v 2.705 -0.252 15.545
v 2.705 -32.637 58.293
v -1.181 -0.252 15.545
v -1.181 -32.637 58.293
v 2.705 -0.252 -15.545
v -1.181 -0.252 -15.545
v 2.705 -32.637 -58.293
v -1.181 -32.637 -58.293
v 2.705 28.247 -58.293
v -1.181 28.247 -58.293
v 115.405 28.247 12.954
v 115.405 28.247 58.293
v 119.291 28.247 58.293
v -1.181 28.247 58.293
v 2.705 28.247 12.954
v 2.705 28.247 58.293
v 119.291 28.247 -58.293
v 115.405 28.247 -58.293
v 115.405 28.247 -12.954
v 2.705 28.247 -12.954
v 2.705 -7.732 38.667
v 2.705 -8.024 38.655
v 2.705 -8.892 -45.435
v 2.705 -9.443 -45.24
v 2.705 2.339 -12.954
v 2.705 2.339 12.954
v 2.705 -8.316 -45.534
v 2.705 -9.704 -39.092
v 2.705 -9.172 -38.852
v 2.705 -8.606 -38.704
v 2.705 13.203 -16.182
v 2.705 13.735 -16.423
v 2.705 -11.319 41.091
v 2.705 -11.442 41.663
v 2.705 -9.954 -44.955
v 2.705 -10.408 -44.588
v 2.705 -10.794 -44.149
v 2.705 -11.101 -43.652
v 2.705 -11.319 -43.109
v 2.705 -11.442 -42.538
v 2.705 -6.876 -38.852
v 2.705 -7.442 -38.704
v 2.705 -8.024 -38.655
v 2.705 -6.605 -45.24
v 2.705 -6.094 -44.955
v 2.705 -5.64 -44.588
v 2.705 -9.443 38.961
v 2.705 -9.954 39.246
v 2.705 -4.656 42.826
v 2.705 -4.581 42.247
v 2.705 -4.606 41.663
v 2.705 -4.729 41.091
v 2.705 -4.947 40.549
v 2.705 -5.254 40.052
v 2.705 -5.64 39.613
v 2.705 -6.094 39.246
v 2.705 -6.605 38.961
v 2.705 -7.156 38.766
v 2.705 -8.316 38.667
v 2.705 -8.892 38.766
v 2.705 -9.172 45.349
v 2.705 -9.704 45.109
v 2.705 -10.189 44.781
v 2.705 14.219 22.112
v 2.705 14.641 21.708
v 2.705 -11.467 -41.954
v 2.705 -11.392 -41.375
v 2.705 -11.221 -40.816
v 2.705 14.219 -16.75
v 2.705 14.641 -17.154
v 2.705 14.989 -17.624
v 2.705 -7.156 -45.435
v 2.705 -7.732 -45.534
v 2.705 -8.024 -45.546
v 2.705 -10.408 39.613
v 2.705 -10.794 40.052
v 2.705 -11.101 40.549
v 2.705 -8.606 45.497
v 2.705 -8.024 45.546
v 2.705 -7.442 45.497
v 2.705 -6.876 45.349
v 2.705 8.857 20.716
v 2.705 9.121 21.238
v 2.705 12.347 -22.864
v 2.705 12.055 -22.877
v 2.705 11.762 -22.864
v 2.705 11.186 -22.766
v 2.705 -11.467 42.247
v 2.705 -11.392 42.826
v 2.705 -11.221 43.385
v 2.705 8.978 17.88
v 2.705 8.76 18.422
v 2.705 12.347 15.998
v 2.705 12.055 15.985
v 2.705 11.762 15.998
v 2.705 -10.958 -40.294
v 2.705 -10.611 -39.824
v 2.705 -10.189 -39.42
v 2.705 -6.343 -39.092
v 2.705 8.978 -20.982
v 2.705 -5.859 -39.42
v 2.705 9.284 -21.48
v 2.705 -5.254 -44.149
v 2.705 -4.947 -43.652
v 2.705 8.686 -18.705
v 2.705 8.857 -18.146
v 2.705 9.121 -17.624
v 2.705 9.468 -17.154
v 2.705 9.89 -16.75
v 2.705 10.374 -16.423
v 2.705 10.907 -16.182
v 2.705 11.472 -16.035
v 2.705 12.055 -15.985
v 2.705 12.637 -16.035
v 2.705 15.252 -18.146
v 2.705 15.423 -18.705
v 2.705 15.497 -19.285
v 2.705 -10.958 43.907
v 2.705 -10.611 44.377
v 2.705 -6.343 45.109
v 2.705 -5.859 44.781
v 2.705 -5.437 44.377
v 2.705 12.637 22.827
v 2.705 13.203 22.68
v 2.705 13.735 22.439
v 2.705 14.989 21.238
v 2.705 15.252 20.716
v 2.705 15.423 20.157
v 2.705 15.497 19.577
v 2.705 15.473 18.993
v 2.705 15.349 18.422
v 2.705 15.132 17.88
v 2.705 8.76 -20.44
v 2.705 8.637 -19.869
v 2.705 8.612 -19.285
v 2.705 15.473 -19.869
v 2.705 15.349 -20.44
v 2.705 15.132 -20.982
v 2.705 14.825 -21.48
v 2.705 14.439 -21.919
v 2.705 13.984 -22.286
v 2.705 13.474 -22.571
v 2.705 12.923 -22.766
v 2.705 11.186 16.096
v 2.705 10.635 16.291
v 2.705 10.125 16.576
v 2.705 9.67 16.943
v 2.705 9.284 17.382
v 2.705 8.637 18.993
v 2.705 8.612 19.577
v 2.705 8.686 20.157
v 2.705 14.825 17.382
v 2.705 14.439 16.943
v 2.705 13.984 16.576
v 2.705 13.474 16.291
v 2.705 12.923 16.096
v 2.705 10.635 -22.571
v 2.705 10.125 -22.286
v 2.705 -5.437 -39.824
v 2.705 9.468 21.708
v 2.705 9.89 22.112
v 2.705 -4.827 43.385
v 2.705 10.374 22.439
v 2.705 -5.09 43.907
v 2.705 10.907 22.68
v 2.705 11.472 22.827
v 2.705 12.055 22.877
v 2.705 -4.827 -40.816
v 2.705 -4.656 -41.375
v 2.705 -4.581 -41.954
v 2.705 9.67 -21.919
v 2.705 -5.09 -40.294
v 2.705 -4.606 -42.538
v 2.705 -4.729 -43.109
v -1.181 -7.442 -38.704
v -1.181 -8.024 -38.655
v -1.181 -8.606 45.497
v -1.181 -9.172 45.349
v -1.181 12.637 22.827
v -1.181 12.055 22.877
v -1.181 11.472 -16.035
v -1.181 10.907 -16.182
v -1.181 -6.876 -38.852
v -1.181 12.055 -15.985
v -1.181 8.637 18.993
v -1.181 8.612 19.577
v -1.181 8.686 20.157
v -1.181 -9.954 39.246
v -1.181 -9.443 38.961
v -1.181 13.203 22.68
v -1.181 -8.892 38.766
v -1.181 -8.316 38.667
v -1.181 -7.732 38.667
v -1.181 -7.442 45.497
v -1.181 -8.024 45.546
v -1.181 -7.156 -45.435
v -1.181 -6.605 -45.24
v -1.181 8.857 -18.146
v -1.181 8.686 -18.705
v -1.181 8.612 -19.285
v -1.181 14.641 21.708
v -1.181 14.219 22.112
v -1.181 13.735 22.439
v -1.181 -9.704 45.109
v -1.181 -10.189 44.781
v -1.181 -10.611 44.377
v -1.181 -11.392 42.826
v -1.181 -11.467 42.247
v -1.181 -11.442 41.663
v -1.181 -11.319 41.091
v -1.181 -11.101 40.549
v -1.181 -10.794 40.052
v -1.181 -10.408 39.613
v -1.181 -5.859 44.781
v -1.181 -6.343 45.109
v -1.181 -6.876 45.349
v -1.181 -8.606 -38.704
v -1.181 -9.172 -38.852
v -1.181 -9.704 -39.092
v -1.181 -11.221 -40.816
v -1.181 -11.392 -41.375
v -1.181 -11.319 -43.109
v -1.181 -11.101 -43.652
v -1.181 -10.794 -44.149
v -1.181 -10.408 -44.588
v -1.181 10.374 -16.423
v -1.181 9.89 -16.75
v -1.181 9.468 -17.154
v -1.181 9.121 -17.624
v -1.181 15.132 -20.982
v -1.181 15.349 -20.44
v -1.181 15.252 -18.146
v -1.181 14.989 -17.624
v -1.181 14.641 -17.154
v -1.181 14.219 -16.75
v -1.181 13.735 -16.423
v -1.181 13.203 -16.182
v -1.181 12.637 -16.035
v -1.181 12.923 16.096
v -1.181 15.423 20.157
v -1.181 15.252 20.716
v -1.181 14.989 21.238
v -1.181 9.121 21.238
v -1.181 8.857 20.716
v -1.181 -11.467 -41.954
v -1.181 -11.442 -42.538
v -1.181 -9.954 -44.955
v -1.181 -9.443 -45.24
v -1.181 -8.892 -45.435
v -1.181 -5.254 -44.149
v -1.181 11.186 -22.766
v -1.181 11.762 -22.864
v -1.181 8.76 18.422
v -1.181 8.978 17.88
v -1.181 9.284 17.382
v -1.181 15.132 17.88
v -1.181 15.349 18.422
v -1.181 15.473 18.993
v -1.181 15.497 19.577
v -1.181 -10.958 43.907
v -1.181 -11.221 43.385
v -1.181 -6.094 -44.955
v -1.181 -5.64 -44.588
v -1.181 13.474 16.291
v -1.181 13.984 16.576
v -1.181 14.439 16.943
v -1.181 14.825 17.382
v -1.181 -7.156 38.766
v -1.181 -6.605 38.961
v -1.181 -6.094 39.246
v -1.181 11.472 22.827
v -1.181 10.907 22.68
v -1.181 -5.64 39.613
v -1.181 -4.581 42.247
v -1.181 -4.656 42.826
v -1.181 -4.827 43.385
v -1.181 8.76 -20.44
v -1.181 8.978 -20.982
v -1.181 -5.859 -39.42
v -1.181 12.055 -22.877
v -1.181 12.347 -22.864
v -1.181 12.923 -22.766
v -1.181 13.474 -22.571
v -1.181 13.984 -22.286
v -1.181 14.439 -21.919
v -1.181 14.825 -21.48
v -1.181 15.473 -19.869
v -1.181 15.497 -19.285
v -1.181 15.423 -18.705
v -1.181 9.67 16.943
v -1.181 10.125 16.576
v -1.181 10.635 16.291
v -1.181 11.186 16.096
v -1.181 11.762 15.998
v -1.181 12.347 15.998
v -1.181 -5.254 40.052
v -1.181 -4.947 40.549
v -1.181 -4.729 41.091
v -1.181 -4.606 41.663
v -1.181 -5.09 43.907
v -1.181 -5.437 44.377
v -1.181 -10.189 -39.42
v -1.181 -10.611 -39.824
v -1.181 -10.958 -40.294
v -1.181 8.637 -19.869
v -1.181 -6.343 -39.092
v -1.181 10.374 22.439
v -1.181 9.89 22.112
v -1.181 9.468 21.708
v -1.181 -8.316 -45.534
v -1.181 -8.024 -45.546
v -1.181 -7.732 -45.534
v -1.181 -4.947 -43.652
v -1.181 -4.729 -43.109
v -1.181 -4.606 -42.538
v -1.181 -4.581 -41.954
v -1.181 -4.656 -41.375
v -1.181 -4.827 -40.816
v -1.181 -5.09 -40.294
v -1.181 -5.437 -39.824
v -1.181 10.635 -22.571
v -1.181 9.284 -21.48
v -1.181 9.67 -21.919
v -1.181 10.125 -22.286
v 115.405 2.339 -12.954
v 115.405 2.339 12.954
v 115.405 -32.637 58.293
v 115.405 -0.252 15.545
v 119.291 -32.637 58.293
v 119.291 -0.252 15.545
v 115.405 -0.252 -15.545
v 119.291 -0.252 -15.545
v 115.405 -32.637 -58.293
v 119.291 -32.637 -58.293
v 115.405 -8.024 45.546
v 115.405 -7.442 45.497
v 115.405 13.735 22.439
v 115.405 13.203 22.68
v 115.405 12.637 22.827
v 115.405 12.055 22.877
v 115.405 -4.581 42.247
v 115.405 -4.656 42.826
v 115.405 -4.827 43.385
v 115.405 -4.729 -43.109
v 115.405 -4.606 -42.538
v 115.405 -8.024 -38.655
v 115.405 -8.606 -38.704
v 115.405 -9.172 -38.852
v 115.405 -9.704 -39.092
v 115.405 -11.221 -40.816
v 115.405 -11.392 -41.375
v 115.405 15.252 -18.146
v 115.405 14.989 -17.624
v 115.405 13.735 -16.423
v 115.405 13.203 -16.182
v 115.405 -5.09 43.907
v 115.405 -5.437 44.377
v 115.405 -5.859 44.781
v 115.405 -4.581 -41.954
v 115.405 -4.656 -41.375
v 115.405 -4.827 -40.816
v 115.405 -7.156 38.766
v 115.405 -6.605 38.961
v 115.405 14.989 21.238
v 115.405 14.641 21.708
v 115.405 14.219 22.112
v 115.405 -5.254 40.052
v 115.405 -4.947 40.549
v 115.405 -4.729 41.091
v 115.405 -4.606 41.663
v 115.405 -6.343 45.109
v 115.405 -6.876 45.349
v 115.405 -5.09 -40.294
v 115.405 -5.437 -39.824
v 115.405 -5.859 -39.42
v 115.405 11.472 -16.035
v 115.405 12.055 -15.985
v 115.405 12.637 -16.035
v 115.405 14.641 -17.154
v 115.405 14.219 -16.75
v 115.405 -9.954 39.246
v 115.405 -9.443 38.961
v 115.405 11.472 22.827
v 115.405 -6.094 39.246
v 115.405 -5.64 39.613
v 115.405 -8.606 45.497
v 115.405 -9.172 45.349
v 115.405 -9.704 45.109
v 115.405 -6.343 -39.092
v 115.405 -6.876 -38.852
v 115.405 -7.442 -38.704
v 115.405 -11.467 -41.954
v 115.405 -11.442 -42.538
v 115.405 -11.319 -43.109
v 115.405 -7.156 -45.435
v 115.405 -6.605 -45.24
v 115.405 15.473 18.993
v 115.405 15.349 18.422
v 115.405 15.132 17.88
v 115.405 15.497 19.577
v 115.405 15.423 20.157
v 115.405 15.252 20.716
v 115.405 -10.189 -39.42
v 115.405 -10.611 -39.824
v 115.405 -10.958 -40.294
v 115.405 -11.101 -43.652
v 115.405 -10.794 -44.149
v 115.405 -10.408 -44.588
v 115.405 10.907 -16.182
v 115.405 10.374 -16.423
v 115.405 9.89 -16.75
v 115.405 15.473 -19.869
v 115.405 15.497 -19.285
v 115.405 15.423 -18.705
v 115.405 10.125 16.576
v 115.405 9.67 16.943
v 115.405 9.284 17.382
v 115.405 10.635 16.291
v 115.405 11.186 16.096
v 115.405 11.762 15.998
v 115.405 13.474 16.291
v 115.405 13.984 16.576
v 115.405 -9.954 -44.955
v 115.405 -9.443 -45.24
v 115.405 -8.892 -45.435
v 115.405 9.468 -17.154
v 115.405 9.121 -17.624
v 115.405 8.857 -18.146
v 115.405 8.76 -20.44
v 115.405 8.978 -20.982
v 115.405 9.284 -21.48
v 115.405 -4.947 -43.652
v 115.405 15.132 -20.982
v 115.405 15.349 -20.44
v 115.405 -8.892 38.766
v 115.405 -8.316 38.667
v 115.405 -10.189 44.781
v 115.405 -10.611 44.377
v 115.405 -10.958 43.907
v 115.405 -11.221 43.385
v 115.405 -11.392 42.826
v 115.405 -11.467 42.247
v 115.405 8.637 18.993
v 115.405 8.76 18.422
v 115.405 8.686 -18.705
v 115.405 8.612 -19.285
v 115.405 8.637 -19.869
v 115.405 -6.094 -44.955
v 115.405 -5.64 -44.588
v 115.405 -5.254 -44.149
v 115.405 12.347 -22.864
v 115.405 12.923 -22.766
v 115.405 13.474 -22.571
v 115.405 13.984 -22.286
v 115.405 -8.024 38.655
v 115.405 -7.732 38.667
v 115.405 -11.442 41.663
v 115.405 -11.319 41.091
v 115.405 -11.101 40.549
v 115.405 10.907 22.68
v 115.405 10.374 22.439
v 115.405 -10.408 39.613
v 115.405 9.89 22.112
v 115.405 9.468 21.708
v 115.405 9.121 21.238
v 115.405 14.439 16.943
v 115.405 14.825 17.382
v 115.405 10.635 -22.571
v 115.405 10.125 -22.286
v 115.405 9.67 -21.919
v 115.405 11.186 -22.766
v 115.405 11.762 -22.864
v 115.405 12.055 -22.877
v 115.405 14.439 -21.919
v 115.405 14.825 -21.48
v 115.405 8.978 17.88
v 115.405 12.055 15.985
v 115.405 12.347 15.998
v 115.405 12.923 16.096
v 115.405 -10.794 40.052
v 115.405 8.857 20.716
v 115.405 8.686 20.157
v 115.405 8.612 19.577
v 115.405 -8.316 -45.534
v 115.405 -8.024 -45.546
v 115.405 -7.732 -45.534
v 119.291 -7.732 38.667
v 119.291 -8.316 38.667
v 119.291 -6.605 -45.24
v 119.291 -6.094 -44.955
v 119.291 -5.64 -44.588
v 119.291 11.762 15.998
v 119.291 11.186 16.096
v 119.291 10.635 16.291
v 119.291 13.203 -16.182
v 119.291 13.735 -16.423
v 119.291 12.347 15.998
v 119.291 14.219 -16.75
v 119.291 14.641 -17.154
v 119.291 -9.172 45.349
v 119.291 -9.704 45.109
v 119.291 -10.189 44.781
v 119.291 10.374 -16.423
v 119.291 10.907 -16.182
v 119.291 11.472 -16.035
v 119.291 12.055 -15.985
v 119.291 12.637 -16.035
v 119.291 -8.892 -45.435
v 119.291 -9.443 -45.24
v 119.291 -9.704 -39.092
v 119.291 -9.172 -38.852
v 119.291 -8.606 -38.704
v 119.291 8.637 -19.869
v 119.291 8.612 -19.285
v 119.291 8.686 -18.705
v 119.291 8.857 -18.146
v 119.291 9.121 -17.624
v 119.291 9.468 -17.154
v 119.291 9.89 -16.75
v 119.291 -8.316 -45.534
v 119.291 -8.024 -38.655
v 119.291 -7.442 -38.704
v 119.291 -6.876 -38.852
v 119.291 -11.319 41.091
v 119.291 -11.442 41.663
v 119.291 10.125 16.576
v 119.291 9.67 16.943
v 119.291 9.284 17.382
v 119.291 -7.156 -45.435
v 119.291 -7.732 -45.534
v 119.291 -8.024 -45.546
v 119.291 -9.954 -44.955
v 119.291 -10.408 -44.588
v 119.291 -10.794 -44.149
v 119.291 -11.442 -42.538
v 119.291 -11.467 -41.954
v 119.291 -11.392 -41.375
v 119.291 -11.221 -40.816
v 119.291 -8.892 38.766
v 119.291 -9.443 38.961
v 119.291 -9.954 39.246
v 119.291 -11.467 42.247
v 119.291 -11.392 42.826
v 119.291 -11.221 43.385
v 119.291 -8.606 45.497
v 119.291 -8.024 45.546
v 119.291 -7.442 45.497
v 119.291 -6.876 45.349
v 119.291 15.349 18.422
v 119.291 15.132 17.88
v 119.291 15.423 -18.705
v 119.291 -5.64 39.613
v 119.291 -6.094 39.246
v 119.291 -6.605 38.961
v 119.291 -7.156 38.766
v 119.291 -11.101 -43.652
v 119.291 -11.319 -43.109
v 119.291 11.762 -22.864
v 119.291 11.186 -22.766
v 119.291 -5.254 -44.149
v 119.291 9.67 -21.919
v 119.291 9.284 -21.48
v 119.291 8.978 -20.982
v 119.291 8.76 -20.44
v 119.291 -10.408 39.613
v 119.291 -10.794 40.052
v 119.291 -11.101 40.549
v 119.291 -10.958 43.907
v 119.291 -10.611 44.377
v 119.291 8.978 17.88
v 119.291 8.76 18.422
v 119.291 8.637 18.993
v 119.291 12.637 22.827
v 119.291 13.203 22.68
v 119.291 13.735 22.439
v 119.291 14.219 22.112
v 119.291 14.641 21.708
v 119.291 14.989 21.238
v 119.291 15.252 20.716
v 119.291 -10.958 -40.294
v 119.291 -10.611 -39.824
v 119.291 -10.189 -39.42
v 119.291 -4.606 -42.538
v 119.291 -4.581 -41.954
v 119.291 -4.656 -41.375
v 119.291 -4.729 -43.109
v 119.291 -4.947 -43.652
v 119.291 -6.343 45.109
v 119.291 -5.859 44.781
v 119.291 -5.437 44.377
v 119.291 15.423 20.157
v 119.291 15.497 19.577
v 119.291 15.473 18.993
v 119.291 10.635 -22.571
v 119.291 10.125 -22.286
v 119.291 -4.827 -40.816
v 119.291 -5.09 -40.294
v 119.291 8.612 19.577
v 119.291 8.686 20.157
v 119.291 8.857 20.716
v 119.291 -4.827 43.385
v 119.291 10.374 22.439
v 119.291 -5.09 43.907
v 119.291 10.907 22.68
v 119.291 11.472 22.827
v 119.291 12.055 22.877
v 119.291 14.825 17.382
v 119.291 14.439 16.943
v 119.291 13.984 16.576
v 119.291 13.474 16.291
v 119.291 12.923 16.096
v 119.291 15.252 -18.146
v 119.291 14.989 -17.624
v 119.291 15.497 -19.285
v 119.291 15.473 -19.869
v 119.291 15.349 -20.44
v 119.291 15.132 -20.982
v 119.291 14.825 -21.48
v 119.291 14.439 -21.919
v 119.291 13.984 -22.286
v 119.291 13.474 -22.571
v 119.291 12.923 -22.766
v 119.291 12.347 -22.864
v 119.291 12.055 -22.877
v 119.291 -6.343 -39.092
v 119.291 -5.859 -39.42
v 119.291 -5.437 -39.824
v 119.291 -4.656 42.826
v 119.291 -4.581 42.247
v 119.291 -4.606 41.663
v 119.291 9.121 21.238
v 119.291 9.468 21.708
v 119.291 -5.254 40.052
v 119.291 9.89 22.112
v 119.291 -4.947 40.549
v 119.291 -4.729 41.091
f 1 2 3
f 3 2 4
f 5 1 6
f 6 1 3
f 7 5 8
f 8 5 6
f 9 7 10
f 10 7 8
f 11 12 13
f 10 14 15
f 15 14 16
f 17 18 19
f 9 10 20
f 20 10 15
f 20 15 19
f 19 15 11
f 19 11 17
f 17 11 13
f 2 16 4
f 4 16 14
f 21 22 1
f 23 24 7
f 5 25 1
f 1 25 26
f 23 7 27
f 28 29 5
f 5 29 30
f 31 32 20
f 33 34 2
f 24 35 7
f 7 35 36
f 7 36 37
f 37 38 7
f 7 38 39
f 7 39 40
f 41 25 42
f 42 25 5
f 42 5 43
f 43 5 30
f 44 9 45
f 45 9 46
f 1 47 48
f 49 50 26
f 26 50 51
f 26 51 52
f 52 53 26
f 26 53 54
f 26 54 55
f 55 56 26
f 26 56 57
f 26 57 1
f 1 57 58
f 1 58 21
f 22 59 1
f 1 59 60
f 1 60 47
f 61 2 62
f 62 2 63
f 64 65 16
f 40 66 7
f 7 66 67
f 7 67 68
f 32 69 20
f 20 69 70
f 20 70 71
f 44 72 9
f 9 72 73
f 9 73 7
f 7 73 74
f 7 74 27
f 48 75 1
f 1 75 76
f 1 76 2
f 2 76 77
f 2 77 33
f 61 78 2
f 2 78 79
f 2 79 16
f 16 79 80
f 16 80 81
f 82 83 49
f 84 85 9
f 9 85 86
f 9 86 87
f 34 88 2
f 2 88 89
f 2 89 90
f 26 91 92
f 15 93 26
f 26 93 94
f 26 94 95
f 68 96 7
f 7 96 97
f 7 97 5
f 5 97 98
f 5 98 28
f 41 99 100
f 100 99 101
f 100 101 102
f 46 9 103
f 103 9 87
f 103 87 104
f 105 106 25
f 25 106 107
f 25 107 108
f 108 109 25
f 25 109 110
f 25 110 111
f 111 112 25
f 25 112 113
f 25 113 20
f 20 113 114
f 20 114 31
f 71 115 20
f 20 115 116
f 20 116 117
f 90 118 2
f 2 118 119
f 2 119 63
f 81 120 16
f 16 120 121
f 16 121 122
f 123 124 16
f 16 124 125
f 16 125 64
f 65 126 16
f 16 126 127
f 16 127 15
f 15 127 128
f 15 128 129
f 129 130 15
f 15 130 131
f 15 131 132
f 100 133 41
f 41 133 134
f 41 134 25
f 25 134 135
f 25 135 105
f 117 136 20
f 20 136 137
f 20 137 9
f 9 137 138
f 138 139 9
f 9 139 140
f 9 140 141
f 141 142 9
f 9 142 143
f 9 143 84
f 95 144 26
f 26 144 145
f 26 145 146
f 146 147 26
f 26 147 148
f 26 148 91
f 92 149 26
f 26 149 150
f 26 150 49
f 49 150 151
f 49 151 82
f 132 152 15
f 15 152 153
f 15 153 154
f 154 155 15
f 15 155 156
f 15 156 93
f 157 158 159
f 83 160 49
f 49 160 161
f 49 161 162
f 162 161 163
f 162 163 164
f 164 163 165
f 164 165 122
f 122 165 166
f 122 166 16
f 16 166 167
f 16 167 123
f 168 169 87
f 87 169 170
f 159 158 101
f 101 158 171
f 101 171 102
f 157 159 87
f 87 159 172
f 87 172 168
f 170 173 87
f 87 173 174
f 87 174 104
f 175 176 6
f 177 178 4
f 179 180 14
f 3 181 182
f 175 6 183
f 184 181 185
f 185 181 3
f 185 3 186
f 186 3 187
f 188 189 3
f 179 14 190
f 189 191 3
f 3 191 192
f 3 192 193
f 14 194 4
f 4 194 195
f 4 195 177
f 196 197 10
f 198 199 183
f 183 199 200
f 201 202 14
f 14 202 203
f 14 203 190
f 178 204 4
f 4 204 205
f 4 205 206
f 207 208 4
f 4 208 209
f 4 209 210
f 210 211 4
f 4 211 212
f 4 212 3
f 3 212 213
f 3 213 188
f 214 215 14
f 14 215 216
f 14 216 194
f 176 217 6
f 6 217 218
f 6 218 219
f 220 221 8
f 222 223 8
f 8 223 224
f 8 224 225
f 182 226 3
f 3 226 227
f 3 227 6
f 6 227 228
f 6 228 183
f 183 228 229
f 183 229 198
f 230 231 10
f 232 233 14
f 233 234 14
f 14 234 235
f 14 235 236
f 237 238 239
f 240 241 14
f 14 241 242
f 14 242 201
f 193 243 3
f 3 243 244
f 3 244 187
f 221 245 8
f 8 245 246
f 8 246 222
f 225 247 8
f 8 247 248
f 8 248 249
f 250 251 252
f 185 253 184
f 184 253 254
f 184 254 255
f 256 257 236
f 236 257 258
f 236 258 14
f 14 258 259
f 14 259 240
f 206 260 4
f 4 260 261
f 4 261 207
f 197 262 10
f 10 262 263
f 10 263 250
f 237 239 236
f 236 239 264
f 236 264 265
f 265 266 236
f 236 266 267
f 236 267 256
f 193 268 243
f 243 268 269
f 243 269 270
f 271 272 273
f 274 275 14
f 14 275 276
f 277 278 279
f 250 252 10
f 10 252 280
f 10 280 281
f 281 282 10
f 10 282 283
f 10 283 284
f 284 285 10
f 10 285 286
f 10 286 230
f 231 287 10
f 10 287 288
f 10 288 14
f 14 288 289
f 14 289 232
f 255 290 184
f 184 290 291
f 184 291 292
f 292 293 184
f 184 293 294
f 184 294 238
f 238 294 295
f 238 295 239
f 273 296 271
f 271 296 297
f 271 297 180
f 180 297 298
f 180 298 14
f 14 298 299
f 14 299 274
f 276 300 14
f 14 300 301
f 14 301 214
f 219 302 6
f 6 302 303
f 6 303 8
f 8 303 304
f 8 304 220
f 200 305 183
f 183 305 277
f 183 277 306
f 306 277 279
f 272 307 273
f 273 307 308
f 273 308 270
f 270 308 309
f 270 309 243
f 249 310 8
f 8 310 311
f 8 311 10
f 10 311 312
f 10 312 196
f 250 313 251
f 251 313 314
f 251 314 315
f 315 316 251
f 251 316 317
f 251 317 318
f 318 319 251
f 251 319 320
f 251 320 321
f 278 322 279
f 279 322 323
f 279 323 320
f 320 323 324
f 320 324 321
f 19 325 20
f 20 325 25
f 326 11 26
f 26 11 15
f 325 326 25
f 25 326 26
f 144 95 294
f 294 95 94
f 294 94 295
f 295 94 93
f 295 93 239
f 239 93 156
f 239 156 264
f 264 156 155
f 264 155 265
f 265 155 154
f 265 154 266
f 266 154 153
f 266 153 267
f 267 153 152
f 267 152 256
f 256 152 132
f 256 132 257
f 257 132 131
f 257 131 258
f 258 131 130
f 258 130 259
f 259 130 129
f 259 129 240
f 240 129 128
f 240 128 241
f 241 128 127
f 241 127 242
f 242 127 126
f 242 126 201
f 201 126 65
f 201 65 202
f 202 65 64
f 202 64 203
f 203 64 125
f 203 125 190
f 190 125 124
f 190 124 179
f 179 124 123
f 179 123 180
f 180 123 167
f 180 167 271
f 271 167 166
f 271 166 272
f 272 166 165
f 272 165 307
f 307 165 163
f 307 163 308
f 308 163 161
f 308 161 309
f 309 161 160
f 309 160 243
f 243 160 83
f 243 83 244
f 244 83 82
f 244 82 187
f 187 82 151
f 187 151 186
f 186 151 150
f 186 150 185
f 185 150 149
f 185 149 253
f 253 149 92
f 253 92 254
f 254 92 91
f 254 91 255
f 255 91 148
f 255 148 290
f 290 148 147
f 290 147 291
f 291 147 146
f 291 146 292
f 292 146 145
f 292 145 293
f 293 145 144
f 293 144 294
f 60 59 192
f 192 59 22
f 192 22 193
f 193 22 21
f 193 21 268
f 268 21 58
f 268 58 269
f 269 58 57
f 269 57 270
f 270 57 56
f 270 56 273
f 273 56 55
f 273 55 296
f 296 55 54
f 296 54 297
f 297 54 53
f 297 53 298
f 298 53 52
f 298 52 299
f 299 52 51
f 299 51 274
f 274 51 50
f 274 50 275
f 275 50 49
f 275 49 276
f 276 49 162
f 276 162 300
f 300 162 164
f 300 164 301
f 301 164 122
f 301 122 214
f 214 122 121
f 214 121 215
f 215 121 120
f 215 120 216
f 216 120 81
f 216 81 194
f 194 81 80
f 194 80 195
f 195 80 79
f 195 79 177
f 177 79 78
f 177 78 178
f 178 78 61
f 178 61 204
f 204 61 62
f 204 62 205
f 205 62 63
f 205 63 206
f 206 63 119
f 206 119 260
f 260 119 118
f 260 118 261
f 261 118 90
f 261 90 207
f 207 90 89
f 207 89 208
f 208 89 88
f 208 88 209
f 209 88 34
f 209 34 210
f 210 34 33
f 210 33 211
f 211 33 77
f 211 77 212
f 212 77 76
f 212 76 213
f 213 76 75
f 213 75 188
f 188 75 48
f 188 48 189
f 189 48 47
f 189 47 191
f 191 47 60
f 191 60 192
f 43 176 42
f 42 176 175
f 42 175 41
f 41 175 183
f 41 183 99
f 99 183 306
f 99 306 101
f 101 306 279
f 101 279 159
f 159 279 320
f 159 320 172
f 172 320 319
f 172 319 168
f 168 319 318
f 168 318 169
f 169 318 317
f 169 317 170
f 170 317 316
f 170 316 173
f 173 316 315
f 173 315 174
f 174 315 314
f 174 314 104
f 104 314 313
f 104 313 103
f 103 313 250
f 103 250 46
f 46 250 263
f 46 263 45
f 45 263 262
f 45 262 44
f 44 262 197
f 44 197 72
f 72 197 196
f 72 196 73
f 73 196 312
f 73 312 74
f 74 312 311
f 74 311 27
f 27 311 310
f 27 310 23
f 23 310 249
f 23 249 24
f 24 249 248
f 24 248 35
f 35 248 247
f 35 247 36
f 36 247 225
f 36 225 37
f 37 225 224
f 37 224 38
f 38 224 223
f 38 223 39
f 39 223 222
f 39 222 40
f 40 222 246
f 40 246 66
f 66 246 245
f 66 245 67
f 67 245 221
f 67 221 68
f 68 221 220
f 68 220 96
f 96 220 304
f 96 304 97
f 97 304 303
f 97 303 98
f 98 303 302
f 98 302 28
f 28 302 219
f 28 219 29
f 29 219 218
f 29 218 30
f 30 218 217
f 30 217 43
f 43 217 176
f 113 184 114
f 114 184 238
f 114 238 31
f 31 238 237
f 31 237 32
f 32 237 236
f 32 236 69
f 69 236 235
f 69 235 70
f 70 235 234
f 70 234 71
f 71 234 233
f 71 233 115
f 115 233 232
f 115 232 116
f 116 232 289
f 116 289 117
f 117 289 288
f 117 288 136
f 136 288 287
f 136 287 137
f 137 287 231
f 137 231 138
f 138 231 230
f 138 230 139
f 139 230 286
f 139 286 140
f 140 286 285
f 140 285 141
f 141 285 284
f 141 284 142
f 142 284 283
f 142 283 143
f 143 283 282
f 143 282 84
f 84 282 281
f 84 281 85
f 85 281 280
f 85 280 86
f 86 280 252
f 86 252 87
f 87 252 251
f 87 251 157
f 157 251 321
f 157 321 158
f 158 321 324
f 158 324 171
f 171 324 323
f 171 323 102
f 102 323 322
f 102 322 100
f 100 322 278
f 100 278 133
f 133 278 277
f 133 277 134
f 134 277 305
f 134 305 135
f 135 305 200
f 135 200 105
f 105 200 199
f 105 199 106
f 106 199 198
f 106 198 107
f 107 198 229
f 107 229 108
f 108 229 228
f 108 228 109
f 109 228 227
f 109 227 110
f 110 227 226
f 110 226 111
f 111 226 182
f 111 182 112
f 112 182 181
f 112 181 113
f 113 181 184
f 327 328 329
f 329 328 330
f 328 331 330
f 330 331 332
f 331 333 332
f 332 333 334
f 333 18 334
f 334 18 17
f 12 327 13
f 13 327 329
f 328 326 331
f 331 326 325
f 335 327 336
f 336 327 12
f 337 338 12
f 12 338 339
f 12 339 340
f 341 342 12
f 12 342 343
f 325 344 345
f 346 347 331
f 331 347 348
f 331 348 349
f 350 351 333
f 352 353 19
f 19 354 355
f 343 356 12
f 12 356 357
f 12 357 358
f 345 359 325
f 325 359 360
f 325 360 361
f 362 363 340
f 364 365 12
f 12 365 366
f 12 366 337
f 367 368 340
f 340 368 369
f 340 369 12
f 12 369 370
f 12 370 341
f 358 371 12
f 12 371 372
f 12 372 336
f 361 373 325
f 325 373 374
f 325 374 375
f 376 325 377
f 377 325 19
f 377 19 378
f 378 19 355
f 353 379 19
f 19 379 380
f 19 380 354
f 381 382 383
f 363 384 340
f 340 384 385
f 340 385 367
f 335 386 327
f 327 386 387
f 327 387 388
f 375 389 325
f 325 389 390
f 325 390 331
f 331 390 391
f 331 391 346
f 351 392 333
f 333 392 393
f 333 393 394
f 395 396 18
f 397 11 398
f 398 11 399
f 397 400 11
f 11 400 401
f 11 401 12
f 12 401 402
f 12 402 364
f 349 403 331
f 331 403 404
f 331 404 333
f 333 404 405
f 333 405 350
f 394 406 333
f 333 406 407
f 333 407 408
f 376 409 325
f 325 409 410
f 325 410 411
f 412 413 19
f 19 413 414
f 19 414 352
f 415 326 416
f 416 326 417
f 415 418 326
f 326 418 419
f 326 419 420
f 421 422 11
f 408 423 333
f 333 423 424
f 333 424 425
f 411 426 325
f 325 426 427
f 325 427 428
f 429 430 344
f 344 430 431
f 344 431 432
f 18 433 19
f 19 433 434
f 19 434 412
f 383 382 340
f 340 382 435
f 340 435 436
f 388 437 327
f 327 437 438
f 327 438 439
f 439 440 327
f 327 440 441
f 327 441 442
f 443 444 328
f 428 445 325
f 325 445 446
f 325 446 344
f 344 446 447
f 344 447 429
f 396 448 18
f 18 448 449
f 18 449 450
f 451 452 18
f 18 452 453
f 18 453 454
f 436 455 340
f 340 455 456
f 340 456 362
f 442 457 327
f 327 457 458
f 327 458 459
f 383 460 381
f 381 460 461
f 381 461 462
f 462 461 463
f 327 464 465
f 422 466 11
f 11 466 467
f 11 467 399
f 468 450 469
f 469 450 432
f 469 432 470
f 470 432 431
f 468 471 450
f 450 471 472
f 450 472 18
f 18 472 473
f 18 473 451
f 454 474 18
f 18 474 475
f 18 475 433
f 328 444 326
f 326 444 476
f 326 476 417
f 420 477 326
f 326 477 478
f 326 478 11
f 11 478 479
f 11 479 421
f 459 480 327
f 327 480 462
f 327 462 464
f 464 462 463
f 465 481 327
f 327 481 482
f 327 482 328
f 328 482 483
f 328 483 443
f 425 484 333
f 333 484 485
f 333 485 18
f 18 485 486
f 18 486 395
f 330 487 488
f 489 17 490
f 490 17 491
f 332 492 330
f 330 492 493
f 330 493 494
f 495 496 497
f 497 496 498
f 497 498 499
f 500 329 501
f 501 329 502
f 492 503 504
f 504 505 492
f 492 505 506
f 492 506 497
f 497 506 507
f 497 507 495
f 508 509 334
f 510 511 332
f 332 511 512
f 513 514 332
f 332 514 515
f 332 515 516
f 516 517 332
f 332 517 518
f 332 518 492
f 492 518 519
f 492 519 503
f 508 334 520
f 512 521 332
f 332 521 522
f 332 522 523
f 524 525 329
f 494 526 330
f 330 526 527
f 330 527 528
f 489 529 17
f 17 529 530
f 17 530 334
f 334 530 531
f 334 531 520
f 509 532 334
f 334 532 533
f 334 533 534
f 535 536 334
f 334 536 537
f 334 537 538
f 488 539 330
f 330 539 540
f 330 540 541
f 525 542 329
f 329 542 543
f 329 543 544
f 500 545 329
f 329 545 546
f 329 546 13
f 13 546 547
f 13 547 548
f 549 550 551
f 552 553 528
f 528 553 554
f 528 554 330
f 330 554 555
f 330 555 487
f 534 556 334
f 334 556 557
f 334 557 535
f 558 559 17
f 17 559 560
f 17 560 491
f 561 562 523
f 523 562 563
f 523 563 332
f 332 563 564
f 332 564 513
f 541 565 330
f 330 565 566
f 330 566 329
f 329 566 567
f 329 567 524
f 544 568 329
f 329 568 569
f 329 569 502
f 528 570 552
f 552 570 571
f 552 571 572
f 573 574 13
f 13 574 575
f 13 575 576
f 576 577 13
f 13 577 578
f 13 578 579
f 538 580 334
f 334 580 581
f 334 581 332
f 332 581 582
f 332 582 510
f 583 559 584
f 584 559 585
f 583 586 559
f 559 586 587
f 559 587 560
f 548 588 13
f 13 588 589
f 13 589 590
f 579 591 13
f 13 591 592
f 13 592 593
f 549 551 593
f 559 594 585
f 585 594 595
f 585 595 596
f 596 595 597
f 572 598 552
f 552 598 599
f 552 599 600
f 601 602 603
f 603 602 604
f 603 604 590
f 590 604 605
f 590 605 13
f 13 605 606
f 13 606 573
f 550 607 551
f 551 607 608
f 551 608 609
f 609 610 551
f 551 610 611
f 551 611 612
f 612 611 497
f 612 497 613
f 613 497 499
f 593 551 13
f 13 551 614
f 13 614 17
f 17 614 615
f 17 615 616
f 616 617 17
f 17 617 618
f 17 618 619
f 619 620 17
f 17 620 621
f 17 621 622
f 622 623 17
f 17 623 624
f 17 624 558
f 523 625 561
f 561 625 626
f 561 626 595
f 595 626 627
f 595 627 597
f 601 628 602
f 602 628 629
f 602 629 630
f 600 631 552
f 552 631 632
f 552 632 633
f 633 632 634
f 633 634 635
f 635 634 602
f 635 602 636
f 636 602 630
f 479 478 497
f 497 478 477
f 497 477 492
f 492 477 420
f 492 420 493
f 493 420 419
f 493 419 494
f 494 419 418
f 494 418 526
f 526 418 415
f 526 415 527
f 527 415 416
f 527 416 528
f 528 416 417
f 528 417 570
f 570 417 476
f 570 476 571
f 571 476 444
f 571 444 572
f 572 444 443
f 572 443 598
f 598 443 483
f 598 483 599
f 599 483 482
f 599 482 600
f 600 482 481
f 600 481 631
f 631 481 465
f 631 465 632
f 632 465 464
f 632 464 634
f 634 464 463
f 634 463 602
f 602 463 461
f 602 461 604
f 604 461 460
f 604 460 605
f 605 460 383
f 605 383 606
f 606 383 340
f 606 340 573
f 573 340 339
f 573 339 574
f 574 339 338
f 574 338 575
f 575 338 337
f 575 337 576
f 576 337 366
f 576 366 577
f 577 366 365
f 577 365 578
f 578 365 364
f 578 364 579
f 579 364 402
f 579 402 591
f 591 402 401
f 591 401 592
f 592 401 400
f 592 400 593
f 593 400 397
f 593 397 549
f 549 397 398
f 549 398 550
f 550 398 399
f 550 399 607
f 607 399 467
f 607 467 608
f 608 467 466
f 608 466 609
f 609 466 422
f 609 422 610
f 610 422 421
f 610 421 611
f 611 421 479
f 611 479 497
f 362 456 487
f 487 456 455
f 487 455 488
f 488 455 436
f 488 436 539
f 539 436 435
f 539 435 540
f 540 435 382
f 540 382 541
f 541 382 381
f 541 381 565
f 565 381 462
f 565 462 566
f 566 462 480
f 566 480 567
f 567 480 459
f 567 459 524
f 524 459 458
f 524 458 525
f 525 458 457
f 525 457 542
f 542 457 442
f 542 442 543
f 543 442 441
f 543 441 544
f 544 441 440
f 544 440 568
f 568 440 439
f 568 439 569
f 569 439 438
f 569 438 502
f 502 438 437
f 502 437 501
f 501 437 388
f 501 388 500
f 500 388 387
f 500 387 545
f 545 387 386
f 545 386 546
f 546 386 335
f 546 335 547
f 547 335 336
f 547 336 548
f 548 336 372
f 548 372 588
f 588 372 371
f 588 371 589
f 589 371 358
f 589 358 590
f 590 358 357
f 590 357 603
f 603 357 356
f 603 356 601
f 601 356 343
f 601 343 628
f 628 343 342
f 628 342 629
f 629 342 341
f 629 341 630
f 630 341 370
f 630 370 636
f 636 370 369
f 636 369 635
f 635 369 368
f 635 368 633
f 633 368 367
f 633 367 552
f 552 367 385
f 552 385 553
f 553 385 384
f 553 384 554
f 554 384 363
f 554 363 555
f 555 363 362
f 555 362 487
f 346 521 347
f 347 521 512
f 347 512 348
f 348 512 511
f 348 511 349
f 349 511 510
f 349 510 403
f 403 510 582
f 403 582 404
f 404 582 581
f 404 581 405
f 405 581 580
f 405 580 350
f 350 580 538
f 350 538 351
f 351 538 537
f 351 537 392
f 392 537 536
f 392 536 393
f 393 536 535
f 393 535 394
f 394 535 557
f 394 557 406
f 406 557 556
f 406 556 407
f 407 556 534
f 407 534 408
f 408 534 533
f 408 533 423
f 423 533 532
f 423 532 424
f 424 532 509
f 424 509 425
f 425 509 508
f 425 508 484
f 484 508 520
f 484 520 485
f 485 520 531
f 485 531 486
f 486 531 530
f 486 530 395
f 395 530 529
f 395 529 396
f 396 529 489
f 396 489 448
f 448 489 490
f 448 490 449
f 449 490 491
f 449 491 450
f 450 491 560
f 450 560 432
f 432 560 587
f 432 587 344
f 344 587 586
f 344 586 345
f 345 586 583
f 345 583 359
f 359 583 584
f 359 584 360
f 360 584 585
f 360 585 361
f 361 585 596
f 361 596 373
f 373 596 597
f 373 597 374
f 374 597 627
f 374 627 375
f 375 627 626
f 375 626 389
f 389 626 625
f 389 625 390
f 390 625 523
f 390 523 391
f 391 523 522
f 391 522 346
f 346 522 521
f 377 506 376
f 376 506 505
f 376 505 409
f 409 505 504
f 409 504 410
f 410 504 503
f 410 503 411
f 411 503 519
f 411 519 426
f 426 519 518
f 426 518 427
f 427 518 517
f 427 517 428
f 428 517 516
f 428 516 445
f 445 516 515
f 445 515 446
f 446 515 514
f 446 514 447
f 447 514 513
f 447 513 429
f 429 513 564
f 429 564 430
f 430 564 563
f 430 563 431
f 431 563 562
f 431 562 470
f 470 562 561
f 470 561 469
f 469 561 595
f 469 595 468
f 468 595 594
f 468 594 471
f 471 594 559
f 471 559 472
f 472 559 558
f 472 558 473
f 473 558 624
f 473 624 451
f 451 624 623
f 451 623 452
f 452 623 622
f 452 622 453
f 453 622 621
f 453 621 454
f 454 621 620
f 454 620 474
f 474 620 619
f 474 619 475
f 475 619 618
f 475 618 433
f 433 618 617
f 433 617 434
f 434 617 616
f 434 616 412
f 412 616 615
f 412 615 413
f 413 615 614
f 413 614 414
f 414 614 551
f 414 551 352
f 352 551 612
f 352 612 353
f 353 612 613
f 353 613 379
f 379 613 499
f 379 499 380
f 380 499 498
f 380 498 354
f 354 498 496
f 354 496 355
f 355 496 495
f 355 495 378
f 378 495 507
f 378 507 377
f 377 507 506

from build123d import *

# Parameters (mm, degrees)
BOSS_EXTRUDE1_DEPTH = 3.81
SKETCH3_W           = 25.4
SKETCH3_H           = 25.4
BOSS_EXTRUDE2_DEPTH = 55.245
SKETCH4_R           = 3.3782
CUT_EXTRUDE1_DEPTH  = 55.245
SCALE1_SCALE        = 1.02


with BuildPart() as part:
    # Sketch2 → Boss-Extrude1 (new body)
    with BuildSketch(Plane(origin=(0, 0, 0), x_dir=(0, 0, -1), z_dir=(1, 0, 0))):
        Polygon((15.24, 0), (-15.24, 0), (-57.15, -31.75), (-57.15, 27.94), (57.15, 27.94), (57.15, -31.75), align=None)
    boss_extrude1 = extrude(amount=BOSS_EXTRUDE1_DEPTH)

    # Sketch3 → Boss-Extrude2 (add)
    with BuildSketch(Plane(origin=(3.81, 0, 0), x_dir=(0, 0, -1), z_dir=(1, 0, 0))):
        with Locations((0, 15.24)):
            Rectangle(SKETCH3_W, SKETCH3_H)
    boss_extrude2 = extrude(amount=BOSS_EXTRUDE2_DEPTH)

    # Sketch4 → Cut-Extrude1 (cut)
    with BuildSketch(Plane.ZY):
        with Locations((19.05, 12.065)):
            Circle(SKETCH4_R)
        with Locations((41.275, -7.62)):
            Circle(SKETCH4_R)
        with Locations((-41.275, -7.62)):
            Circle(SKETCH4_R)
        with Locations((-19.05, 12.065)):
            Circle(SKETCH4_R)
    cut_extrude1 = extrude(amount=-CUT_EXTRUDE1_DEPTH, mode=Mode.SUBTRACT)

    # Mirror1: Boss-Extrude1, Boss-Extrude2, Cut-Extrude1 across plane
    add(boss_extrude1.mirror(Plane(origin=(59.055, 0, 0), x_dir=(0, 0, 1), z_dir=(1, 0, 0))))
    add(boss_extrude2.mirror(Plane(origin=(59.055, 0, 0), x_dir=(0, 0, 1), z_dir=(1, 0, 0))))
    add(cut_extrude1.mirror(Plane(origin=(59.055, 0, 0), x_dir=(0, 0, 1), z_dir=(1, 0, 0))), mode=Mode.SUBTRACT)


with BuildPart() as part_1:
    # Scale1: scaled about (59.055, 12.578988161, 0)
    add(part.part.scale(SCALE1_SCALE).moved(Location((-1.1811, -0.251579763, 0))))


solid = part_1.part
